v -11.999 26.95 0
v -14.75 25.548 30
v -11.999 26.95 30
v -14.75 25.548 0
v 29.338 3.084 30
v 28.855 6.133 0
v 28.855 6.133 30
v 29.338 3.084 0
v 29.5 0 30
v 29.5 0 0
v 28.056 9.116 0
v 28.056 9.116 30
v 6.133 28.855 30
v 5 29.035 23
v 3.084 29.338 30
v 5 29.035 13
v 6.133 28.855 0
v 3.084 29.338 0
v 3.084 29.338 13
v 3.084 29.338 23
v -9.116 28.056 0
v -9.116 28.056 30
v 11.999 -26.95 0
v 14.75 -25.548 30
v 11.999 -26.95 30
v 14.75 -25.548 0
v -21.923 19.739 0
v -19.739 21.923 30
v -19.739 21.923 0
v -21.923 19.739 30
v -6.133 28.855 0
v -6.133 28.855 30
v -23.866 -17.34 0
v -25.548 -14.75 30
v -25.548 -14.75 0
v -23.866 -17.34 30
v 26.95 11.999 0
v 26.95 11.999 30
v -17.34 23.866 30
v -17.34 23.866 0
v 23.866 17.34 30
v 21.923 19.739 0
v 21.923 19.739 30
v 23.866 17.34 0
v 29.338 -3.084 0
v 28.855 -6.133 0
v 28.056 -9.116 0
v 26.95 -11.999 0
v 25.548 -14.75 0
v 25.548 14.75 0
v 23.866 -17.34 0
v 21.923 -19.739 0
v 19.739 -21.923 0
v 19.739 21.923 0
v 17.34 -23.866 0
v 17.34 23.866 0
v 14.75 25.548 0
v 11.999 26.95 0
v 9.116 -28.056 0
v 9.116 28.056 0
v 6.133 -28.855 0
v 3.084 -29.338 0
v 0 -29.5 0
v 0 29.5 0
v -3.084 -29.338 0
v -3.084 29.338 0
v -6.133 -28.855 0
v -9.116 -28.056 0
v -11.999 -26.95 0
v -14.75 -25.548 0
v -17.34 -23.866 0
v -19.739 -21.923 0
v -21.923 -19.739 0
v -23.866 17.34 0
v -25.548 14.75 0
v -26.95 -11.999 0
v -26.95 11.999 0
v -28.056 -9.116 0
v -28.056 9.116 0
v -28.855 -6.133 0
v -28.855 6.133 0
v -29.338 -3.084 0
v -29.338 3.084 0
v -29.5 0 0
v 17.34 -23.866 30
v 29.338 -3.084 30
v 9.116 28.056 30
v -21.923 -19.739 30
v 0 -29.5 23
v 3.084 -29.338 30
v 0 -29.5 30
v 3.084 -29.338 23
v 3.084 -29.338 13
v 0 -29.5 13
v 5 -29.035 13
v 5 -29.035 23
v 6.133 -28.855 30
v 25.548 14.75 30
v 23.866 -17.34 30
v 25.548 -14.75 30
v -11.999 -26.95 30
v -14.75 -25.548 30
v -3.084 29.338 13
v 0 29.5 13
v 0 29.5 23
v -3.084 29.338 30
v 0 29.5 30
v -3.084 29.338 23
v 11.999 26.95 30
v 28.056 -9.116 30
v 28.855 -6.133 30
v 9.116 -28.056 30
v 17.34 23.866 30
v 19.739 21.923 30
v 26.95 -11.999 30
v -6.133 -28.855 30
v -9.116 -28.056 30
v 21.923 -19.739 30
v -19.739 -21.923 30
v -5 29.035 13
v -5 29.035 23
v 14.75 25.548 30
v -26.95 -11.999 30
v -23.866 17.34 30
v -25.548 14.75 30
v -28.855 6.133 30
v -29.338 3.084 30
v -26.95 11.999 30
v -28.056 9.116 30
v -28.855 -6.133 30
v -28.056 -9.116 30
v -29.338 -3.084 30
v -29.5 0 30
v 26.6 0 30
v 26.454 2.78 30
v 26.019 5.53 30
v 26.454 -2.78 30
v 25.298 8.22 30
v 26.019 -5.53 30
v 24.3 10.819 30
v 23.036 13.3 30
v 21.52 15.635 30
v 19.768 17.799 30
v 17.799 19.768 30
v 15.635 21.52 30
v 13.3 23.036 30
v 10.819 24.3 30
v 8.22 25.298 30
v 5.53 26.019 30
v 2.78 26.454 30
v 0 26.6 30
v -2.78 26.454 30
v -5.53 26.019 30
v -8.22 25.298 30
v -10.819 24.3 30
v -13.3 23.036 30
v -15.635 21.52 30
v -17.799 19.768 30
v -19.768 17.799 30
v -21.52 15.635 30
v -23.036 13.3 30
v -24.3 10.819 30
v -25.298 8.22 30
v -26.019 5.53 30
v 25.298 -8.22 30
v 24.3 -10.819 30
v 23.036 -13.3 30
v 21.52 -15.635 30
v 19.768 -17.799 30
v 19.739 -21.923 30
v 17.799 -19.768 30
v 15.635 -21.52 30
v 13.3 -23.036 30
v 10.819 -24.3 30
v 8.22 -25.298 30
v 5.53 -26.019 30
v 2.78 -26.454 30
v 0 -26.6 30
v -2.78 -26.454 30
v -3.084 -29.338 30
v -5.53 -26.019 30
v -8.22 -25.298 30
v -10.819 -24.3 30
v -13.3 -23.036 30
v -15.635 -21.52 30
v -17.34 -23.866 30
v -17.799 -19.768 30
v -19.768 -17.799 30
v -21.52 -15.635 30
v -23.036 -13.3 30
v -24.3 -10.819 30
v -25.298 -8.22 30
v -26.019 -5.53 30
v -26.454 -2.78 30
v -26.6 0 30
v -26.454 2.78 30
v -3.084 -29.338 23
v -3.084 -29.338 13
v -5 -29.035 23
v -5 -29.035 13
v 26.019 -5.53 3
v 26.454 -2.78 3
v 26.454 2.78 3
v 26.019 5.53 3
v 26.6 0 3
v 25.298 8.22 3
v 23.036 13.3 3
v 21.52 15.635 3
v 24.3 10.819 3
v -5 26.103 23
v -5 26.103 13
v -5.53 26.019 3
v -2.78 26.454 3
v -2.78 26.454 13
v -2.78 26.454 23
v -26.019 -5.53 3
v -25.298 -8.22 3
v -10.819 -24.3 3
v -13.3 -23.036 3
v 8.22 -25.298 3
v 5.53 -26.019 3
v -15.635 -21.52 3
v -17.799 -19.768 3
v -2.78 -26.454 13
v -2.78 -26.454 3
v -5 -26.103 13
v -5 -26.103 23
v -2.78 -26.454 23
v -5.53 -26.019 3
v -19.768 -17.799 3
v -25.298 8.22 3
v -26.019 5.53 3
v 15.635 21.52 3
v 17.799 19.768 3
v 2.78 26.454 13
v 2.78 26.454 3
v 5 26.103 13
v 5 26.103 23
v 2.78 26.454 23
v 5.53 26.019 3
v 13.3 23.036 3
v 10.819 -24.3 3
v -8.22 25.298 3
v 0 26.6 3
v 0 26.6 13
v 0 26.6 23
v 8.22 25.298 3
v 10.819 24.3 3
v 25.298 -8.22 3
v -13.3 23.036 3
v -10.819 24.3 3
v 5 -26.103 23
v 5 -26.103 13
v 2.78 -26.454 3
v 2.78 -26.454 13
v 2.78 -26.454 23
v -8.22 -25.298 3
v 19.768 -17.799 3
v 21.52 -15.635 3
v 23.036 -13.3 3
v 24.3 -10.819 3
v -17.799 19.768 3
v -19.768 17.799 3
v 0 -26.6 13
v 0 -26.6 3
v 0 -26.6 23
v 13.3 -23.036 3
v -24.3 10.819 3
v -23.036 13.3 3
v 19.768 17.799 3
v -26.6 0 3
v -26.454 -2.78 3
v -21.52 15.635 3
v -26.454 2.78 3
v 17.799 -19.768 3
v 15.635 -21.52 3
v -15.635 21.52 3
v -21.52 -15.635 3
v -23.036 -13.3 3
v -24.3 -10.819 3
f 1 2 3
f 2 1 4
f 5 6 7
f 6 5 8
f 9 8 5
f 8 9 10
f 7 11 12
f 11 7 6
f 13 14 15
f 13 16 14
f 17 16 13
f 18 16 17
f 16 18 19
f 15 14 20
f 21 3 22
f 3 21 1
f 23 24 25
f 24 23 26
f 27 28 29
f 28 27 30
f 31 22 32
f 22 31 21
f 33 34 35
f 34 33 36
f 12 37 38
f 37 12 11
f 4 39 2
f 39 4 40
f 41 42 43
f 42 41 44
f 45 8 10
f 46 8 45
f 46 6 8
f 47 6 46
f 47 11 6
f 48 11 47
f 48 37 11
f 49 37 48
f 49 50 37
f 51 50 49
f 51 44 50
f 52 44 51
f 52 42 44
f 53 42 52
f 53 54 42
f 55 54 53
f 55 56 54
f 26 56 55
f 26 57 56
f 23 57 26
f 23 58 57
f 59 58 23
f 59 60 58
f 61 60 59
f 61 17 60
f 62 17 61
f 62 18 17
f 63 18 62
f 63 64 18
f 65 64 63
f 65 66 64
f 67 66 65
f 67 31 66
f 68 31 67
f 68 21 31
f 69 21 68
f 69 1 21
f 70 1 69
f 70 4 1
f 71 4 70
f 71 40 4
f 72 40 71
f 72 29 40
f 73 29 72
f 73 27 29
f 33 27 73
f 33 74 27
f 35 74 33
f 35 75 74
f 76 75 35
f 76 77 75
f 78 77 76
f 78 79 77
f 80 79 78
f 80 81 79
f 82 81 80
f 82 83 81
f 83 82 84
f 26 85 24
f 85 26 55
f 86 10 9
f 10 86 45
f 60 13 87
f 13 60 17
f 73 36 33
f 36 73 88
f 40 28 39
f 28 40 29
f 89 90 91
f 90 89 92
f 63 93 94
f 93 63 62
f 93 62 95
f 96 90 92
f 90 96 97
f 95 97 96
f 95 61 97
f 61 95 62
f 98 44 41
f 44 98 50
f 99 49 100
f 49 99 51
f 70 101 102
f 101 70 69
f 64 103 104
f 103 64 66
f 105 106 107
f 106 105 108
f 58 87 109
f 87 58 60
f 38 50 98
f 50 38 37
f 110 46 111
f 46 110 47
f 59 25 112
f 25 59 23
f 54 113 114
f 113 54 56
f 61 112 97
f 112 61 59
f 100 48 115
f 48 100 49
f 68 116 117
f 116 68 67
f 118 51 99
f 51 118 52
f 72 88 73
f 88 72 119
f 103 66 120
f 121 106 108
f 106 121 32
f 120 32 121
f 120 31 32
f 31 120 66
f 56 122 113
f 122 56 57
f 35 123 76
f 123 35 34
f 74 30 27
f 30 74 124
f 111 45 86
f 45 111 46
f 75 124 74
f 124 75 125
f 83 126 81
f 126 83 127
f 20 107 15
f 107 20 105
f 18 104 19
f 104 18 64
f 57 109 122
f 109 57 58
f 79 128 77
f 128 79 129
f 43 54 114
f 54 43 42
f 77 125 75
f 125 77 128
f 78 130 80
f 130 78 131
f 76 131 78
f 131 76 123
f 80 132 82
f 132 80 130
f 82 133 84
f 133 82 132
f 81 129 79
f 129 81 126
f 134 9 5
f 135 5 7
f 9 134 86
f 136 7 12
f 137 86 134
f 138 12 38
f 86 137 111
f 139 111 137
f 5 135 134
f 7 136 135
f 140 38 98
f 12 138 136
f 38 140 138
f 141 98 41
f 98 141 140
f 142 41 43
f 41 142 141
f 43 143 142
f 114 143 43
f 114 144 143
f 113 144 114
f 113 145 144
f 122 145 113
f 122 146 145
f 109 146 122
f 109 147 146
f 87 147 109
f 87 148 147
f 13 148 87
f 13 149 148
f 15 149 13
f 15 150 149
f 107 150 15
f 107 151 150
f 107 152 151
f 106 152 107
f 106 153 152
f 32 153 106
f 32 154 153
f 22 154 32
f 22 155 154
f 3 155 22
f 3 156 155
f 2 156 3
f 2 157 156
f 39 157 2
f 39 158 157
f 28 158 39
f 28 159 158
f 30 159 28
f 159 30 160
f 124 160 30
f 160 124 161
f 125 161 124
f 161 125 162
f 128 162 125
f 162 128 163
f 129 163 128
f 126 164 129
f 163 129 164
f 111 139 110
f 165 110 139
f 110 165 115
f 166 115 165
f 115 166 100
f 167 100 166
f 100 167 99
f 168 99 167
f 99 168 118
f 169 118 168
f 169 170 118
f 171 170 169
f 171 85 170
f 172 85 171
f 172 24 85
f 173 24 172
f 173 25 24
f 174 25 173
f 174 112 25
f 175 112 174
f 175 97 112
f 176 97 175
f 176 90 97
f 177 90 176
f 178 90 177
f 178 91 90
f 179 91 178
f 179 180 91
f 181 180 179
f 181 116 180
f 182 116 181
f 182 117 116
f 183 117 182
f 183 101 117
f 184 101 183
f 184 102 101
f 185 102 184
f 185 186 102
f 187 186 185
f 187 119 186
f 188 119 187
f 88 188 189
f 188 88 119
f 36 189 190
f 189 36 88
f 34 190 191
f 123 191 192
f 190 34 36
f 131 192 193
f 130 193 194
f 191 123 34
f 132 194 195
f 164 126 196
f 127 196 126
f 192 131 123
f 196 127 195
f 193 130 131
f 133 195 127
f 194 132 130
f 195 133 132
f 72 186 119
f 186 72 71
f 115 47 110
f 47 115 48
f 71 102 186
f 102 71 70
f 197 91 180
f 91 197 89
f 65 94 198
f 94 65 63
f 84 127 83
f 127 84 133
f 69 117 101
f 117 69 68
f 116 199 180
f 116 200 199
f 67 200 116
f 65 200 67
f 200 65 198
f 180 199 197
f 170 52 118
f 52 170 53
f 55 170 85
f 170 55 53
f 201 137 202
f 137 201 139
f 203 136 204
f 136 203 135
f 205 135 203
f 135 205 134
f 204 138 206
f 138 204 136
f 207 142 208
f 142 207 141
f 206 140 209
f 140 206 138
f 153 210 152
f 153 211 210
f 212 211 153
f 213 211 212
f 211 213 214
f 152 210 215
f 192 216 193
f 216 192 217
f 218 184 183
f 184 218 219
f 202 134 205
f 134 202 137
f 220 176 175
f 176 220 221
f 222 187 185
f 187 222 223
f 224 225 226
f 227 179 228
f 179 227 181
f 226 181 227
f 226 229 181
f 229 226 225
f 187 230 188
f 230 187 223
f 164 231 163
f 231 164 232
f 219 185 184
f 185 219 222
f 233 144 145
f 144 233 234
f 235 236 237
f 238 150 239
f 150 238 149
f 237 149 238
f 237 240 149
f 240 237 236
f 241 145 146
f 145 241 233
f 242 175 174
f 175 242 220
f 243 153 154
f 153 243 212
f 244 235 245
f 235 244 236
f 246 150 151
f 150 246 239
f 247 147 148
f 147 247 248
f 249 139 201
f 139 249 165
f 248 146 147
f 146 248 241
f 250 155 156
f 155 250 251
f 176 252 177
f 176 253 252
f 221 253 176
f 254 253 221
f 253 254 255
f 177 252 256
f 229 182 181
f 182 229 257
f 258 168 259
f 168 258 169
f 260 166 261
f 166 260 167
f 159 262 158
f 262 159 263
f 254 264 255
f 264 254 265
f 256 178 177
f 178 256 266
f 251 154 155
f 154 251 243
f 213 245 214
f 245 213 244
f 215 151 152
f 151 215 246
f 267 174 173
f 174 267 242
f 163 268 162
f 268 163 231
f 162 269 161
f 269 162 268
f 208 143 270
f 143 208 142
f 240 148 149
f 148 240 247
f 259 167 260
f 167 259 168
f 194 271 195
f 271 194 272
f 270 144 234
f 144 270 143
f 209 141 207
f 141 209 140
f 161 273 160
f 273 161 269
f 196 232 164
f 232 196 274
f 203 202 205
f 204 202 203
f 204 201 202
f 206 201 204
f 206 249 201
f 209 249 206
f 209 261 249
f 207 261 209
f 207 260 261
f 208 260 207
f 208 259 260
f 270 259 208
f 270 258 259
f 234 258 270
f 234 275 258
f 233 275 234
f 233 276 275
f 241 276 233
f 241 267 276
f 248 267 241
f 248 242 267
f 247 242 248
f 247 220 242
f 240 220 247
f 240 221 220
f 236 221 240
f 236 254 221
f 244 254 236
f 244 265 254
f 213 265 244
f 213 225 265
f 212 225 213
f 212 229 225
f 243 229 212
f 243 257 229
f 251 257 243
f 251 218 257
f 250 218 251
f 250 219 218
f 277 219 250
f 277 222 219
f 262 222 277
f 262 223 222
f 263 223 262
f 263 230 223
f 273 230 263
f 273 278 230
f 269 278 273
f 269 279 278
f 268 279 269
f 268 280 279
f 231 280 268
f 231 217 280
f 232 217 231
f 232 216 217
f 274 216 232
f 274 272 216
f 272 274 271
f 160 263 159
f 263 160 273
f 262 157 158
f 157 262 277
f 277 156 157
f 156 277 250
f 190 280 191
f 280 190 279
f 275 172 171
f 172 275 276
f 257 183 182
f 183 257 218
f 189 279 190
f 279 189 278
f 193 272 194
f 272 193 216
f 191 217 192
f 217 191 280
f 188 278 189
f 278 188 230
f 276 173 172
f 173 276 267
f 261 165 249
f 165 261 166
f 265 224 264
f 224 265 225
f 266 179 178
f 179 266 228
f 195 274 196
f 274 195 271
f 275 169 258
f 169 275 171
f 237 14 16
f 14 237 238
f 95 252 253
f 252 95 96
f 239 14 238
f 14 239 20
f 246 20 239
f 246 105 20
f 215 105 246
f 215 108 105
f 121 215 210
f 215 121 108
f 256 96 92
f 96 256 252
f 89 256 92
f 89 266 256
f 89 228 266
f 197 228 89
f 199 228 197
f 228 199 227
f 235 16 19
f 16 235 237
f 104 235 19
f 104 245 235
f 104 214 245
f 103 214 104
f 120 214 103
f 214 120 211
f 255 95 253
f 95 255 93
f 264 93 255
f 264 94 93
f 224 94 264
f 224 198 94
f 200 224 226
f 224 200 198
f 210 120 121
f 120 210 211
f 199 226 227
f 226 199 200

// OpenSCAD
$fn=60;
bottle_r = 53/2;
insert_padding = 0.1;

stand_h = 30;
thickness = 3;

difference(){
    cylinder(r=bottle_r + thickness,h=stand_h);
    translate([0,0,thickness])
    cylinder(r=bottle_r + insert_padding,h=stand_h);
    
    translate([0,0,thickness + stand_h/2])
    cube([10,100,10],center=true);
}
